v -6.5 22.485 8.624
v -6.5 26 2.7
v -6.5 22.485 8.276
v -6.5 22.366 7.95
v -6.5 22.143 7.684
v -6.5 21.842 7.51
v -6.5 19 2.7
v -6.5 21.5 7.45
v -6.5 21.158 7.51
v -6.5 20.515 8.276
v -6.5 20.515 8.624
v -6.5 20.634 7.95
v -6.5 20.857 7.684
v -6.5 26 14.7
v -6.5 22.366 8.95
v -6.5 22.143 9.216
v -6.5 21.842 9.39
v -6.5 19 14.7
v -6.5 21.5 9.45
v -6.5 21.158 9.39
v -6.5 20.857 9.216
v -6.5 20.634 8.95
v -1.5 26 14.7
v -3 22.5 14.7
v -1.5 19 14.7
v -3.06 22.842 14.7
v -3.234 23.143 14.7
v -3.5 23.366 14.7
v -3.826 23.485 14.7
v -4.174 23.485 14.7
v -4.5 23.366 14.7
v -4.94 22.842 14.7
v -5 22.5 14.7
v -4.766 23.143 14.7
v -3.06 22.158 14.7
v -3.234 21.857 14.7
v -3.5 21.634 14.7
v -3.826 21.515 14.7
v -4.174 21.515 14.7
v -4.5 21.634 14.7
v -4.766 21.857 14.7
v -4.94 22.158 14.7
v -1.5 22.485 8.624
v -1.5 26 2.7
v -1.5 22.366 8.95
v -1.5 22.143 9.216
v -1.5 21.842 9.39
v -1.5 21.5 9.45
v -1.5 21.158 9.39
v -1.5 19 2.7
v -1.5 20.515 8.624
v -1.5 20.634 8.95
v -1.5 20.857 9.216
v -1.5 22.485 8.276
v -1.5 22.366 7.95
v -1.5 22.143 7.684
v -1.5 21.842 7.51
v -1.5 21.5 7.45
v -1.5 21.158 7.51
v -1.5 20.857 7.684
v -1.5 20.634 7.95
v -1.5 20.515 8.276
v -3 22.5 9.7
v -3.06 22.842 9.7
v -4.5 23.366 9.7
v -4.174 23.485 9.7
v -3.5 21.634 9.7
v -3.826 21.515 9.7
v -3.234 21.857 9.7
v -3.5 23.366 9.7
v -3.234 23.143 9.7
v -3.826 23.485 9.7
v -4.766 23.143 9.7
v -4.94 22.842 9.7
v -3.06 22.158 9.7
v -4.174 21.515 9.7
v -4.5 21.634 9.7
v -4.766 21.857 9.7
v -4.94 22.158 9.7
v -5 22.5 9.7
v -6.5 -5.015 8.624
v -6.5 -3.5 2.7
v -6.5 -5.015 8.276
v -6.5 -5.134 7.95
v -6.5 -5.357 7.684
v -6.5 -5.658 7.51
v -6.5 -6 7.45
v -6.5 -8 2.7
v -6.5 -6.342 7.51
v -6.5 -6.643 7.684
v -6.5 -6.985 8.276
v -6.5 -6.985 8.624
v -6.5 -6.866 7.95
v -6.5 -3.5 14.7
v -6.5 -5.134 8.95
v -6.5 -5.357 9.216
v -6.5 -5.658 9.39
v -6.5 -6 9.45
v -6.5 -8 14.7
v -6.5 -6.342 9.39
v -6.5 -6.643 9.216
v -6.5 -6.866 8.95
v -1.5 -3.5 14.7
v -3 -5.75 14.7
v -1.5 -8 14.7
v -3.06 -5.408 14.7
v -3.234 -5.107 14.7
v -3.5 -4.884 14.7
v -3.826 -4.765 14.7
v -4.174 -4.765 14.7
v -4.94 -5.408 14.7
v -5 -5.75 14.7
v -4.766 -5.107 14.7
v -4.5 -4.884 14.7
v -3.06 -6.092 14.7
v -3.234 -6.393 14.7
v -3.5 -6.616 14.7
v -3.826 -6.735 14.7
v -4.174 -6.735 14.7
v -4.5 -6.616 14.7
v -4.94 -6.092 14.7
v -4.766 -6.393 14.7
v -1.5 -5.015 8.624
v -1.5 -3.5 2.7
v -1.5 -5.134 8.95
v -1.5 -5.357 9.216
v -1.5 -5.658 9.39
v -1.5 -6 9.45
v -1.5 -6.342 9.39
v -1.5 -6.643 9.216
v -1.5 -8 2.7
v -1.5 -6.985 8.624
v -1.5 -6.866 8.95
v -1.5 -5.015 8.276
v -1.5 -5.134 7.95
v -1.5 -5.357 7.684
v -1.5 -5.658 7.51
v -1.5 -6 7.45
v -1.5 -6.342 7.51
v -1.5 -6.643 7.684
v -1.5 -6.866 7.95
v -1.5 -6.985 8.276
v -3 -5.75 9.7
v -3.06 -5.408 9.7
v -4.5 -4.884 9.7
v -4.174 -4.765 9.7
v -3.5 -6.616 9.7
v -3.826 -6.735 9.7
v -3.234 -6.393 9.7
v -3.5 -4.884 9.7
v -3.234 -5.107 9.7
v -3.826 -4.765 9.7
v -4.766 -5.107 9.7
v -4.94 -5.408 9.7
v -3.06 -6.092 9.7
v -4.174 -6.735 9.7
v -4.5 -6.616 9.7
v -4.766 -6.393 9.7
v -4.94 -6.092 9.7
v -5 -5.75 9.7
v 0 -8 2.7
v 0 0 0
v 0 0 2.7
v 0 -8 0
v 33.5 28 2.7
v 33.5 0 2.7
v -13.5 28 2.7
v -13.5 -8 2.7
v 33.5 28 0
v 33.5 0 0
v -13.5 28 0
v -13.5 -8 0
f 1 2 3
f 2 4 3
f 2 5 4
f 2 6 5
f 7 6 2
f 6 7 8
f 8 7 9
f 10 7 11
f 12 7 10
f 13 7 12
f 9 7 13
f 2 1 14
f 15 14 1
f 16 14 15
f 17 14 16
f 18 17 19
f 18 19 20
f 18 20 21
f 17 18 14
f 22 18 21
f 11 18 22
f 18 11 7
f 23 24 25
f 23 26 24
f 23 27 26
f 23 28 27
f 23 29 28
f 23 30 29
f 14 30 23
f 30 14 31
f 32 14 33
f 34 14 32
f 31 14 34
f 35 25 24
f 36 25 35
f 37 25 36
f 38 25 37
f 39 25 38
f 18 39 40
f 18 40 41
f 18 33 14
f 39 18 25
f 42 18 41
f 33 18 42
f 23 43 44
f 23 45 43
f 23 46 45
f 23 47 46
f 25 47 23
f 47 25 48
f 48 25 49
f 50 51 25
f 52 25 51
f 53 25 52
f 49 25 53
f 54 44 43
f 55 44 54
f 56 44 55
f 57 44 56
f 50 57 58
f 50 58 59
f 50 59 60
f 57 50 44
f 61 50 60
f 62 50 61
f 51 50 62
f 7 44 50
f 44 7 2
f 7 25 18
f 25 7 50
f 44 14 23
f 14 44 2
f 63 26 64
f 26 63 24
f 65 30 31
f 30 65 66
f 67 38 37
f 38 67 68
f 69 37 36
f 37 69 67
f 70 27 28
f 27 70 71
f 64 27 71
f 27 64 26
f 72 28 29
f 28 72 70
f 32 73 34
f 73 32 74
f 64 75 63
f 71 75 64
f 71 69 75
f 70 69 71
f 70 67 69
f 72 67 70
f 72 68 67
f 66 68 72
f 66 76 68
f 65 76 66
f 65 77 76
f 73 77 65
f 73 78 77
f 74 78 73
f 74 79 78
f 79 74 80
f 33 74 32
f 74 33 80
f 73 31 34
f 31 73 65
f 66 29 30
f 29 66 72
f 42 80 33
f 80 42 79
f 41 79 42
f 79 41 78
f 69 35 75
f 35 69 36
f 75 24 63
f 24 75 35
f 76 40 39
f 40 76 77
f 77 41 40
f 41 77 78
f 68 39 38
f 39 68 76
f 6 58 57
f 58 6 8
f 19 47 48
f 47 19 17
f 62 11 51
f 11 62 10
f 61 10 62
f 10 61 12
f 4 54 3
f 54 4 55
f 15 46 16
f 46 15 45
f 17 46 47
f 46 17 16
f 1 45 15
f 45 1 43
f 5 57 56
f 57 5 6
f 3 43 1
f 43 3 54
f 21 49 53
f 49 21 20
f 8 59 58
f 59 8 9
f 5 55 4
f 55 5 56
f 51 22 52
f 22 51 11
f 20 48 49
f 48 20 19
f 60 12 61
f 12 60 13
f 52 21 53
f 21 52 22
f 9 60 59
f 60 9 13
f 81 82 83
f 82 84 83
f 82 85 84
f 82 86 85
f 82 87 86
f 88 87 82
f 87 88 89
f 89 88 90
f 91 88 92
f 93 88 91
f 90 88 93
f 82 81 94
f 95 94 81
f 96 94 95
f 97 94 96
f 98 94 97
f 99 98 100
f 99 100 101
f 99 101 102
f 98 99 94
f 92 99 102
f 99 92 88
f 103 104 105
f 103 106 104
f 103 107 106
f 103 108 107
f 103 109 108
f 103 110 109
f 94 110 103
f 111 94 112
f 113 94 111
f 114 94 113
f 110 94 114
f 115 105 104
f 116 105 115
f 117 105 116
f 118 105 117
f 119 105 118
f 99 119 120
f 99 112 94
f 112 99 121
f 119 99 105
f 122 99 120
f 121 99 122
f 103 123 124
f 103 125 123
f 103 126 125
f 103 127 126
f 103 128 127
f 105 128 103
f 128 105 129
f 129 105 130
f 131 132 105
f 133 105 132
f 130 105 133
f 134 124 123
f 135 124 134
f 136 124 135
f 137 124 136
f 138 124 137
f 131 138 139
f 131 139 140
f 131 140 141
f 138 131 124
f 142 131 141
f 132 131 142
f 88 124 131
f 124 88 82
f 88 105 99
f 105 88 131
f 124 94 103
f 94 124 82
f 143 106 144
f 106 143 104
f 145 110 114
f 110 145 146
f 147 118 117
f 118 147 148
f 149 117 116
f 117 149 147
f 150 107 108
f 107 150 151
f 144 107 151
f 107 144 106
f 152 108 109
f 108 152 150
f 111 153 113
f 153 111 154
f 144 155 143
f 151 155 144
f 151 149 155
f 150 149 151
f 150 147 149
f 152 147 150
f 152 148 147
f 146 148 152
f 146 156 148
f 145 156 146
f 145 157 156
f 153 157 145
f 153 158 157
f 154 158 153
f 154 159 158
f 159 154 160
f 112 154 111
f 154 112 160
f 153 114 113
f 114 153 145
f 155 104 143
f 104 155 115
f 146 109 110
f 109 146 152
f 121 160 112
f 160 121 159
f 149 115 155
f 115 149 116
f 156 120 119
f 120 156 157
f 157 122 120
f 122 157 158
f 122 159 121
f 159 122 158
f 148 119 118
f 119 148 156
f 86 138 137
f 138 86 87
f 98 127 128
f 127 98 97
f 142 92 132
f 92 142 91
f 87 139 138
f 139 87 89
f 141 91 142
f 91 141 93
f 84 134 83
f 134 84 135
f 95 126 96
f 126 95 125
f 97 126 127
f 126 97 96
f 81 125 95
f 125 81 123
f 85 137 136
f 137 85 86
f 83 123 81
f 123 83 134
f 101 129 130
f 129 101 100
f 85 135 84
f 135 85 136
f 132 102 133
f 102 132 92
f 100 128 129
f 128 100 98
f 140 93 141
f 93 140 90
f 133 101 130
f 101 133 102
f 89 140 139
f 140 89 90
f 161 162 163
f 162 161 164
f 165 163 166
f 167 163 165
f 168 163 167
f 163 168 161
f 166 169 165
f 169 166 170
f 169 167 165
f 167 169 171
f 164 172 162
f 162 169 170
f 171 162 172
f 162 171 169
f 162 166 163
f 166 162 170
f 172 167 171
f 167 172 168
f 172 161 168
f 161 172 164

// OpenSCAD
$fn=18;

cube([33.5, 28, 2.7]);
translate([-13.5, -8, 0]) {
    cube([13.5, 36, 2.7]);
}


translate([-6.5, 19, 2.7]) {
    difference() {
        cube([5, 7, 12]);
        translate([2.5, 3.5, 7]){
            cylinder(h= 10, r=1);
        }
        translate([-1, 2.5, 5.75]){
            rotate([0, 90, 0]){
                cylinder(h= 10, r=1);
            }
        }
    }
}

translate([-6.5, -8, 2.7]) {
    difference(){
        cube([5, 4.5, 12]);
        translate([2.5, 2.25, 7]){
            cylinder(h= 10, r=1);
        }
        translate([-1, 2, 5.75]){
            rotate([0, 90, 0]){
                cylinder(h= 10, r=1);
            }
        }
    }
}
